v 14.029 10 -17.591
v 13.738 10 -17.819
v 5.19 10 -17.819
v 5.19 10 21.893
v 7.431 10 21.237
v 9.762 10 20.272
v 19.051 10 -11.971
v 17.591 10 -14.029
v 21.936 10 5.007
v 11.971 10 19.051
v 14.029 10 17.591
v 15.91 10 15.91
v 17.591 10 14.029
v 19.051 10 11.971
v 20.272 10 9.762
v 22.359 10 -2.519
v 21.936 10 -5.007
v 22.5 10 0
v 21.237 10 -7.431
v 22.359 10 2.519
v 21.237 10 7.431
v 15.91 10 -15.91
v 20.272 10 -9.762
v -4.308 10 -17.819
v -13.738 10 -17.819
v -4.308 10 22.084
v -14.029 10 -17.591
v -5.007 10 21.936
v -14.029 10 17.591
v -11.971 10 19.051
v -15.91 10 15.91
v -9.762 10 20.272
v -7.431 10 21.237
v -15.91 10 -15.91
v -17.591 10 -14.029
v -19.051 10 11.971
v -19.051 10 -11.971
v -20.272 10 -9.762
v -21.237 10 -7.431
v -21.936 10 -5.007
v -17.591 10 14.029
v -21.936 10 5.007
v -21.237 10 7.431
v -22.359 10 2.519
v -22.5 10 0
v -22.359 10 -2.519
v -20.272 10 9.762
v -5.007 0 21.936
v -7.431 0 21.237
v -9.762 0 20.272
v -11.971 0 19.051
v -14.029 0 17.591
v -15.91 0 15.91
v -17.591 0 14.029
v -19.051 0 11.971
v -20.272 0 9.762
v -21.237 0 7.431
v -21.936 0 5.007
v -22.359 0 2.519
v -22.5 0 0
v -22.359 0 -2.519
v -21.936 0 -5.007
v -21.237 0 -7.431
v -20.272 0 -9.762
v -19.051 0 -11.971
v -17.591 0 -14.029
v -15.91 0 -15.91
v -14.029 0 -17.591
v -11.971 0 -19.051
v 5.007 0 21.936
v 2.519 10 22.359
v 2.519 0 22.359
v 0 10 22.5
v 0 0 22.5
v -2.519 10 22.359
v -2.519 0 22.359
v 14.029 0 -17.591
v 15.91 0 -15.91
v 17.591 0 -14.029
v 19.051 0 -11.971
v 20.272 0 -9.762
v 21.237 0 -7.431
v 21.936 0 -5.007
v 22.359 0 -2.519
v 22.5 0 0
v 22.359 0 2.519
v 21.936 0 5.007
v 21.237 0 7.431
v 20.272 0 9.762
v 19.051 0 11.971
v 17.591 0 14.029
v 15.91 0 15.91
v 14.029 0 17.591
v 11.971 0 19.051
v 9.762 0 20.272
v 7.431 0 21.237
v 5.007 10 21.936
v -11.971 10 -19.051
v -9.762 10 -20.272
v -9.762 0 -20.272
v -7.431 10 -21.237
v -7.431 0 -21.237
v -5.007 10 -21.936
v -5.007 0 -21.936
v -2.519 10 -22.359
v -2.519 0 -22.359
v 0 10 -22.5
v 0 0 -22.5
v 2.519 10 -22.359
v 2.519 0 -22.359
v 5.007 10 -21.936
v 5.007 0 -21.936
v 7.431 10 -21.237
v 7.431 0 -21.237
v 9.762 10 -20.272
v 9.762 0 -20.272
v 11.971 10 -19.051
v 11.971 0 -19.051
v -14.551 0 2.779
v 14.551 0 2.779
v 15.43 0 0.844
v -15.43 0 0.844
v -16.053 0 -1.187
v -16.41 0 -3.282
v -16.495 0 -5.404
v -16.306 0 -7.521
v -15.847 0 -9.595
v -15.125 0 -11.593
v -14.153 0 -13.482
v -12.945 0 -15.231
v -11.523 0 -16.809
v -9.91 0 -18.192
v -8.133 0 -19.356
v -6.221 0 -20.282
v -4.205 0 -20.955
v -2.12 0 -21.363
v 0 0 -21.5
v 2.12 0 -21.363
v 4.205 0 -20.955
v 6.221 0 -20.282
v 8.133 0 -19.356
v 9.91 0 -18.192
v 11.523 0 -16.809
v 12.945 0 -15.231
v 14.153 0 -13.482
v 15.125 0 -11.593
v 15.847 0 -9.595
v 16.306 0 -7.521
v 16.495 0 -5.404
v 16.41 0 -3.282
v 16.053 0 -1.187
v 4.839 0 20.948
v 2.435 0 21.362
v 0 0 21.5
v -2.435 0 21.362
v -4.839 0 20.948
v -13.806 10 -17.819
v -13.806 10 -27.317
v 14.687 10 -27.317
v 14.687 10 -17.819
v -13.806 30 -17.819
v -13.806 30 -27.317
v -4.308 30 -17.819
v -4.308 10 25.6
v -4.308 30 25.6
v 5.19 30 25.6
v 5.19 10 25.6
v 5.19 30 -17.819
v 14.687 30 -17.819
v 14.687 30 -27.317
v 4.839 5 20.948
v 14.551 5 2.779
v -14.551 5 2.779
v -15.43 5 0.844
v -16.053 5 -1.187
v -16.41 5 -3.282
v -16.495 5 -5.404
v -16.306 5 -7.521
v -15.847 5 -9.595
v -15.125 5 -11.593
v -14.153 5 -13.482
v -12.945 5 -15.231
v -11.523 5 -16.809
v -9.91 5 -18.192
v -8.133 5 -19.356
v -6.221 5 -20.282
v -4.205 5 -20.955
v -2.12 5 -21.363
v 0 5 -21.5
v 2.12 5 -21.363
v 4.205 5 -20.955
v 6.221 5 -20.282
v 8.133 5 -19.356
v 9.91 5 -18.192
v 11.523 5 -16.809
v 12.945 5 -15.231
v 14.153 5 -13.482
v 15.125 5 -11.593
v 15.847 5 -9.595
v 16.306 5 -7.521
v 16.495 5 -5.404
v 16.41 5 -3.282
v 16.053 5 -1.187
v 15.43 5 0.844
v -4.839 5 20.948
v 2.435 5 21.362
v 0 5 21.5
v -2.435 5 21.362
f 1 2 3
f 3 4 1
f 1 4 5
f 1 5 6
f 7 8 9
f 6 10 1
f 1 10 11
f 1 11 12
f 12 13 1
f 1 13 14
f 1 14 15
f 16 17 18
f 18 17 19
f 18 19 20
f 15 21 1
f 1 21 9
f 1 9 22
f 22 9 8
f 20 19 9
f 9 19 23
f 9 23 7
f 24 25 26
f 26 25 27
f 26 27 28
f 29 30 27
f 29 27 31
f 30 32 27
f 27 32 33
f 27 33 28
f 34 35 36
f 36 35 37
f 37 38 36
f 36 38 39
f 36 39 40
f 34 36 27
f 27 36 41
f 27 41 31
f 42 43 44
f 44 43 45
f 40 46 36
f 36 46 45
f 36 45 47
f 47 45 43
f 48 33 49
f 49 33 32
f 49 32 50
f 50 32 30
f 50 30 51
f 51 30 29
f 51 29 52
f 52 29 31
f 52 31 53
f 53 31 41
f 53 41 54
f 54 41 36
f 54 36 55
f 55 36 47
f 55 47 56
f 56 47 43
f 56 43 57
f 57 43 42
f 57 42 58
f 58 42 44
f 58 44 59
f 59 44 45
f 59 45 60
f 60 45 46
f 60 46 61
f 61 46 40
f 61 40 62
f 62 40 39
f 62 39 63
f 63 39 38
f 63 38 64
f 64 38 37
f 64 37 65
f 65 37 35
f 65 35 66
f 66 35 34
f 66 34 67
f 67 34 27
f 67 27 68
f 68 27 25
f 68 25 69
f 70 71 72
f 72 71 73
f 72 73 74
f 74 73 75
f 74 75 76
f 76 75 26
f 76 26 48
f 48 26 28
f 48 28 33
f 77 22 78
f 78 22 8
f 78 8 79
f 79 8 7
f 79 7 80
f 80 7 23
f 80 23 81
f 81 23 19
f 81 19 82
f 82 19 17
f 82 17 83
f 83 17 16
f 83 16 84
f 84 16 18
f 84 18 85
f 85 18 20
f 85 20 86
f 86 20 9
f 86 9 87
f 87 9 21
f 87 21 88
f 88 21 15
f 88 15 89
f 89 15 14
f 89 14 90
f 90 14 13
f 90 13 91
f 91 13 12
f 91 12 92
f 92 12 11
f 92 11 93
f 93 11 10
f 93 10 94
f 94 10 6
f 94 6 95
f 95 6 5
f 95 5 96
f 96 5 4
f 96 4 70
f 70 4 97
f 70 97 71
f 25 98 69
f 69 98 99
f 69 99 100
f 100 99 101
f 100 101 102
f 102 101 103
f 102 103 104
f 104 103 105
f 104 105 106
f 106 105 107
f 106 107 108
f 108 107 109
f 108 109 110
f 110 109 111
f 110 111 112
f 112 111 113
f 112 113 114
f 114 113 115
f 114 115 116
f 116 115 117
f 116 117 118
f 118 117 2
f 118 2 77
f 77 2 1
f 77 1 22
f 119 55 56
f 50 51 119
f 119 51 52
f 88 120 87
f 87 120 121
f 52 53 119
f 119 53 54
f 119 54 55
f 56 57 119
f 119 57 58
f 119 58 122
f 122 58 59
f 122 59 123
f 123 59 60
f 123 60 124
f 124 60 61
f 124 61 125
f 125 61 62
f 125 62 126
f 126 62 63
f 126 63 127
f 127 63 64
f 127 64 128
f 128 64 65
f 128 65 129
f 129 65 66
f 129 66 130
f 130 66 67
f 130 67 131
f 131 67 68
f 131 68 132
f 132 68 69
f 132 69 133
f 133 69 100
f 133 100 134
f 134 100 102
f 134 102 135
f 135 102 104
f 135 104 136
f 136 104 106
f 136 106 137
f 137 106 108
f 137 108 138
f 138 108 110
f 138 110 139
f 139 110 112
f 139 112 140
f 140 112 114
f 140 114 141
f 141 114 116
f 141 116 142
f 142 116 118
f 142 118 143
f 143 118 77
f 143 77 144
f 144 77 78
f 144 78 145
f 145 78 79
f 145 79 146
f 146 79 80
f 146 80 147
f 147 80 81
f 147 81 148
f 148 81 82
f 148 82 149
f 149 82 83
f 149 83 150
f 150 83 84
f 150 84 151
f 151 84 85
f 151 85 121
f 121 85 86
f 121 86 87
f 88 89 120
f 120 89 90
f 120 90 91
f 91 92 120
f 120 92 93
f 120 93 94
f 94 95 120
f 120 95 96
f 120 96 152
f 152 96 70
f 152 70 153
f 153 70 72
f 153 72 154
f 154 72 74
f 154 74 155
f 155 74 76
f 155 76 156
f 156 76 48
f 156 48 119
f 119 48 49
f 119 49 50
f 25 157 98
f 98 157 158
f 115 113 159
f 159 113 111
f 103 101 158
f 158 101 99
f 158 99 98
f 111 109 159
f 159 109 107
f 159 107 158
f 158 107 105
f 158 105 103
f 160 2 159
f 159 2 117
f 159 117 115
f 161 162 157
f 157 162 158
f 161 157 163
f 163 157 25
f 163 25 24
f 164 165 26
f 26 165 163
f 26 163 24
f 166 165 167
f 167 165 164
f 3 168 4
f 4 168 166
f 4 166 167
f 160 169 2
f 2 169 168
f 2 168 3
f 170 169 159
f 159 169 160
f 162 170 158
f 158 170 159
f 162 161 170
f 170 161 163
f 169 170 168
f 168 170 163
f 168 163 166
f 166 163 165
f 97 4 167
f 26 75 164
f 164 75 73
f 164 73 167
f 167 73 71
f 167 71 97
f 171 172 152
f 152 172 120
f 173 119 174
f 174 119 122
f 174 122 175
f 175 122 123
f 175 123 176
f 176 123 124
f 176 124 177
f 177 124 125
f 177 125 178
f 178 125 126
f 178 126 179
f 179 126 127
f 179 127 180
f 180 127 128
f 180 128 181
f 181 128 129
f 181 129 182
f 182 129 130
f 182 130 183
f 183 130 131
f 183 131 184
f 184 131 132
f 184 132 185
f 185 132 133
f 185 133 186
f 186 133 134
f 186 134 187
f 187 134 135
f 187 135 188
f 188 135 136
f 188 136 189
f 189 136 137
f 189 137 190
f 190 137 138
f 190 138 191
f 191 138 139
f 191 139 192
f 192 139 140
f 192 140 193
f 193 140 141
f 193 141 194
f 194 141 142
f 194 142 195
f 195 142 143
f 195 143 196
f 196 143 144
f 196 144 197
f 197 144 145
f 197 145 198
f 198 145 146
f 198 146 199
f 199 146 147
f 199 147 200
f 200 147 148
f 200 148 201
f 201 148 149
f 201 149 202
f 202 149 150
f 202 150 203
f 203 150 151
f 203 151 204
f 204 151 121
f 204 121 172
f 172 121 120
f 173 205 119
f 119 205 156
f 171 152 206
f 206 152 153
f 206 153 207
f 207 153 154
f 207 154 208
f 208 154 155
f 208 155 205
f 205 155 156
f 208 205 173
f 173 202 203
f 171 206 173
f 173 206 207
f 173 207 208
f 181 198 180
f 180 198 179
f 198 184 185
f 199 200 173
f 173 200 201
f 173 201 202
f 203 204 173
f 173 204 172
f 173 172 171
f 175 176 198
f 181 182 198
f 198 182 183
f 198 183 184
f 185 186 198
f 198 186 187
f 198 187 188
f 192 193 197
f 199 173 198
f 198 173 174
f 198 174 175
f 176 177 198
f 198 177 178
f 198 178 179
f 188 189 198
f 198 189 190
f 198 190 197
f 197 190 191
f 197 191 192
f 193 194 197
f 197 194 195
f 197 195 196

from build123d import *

# Parameters (mm, degrees)
SKETCH1_R           = 22.5
BOSS_EXTRUDE1_DEPTH = 10
BOSS_EXTRUDE2_DEPTH = 20
SKETCH3_R           = 16.5
CUT_EXTRUDE2_DEPTH  = 5


with BuildPart() as part:
    # Sketch1 → Boss-Extrude1 (new body)
    with BuildSketch(Plane(origin=(0, 0, 0), x_dir=(1, 0, 0), z_dir=(0, 1, 0))):
        with Locations(Location((0, 0, 0), (0, 0, 270))):
            Circle(SKETCH1_R)
    extrude(amount=BOSS_EXTRUDE1_DEPTH)

    # Sketch2 → Boss-Extrude2 (add)
    with BuildSketch(Plane(origin=(0, 10, 0), x_dir=(1, 0, 0), z_dir=(0, 1, 0))):
        Polygon((-13.806150904, 27.316911445), (14.687438839, 27.316911445), (14.687438839, 17.819048198), (5.189575591, 17.819048198), (5.189575591, -25.599755221), (-4.308287657, -25.599755221), (-4.308287657, 17.819048198), (-13.806150904, 17.819048198), align=None)
    extrude(amount=BOSS_EXTRUDE2_DEPTH)

    # Sketch3 → Cut-Extrude2 (cut)
    with BuildSketch(Plane.XZ):
        with BuildLine():
            ThreePointArc((-14.551420086, 2.778571429), (0, 11.5), (14.551420086, 2.778571429))
            Line((14.551420086, 2.778571429), (4.83856504, 20.948467447))
            ThreePointArc((4.83856504, 20.948467447), (0, 21.5), (-4.83856504, 20.948467447))
            Line((-4.83856504, 20.948467447), (-14.551420086, 2.778571429))
        make_face()
        with Locations((0, -5)):
            Circle(SKETCH3_R)
    extrude(amount=-CUT_EXTRUDE2_DEPTH, mode=Mode.SUBTRACT)


solid = part.part
